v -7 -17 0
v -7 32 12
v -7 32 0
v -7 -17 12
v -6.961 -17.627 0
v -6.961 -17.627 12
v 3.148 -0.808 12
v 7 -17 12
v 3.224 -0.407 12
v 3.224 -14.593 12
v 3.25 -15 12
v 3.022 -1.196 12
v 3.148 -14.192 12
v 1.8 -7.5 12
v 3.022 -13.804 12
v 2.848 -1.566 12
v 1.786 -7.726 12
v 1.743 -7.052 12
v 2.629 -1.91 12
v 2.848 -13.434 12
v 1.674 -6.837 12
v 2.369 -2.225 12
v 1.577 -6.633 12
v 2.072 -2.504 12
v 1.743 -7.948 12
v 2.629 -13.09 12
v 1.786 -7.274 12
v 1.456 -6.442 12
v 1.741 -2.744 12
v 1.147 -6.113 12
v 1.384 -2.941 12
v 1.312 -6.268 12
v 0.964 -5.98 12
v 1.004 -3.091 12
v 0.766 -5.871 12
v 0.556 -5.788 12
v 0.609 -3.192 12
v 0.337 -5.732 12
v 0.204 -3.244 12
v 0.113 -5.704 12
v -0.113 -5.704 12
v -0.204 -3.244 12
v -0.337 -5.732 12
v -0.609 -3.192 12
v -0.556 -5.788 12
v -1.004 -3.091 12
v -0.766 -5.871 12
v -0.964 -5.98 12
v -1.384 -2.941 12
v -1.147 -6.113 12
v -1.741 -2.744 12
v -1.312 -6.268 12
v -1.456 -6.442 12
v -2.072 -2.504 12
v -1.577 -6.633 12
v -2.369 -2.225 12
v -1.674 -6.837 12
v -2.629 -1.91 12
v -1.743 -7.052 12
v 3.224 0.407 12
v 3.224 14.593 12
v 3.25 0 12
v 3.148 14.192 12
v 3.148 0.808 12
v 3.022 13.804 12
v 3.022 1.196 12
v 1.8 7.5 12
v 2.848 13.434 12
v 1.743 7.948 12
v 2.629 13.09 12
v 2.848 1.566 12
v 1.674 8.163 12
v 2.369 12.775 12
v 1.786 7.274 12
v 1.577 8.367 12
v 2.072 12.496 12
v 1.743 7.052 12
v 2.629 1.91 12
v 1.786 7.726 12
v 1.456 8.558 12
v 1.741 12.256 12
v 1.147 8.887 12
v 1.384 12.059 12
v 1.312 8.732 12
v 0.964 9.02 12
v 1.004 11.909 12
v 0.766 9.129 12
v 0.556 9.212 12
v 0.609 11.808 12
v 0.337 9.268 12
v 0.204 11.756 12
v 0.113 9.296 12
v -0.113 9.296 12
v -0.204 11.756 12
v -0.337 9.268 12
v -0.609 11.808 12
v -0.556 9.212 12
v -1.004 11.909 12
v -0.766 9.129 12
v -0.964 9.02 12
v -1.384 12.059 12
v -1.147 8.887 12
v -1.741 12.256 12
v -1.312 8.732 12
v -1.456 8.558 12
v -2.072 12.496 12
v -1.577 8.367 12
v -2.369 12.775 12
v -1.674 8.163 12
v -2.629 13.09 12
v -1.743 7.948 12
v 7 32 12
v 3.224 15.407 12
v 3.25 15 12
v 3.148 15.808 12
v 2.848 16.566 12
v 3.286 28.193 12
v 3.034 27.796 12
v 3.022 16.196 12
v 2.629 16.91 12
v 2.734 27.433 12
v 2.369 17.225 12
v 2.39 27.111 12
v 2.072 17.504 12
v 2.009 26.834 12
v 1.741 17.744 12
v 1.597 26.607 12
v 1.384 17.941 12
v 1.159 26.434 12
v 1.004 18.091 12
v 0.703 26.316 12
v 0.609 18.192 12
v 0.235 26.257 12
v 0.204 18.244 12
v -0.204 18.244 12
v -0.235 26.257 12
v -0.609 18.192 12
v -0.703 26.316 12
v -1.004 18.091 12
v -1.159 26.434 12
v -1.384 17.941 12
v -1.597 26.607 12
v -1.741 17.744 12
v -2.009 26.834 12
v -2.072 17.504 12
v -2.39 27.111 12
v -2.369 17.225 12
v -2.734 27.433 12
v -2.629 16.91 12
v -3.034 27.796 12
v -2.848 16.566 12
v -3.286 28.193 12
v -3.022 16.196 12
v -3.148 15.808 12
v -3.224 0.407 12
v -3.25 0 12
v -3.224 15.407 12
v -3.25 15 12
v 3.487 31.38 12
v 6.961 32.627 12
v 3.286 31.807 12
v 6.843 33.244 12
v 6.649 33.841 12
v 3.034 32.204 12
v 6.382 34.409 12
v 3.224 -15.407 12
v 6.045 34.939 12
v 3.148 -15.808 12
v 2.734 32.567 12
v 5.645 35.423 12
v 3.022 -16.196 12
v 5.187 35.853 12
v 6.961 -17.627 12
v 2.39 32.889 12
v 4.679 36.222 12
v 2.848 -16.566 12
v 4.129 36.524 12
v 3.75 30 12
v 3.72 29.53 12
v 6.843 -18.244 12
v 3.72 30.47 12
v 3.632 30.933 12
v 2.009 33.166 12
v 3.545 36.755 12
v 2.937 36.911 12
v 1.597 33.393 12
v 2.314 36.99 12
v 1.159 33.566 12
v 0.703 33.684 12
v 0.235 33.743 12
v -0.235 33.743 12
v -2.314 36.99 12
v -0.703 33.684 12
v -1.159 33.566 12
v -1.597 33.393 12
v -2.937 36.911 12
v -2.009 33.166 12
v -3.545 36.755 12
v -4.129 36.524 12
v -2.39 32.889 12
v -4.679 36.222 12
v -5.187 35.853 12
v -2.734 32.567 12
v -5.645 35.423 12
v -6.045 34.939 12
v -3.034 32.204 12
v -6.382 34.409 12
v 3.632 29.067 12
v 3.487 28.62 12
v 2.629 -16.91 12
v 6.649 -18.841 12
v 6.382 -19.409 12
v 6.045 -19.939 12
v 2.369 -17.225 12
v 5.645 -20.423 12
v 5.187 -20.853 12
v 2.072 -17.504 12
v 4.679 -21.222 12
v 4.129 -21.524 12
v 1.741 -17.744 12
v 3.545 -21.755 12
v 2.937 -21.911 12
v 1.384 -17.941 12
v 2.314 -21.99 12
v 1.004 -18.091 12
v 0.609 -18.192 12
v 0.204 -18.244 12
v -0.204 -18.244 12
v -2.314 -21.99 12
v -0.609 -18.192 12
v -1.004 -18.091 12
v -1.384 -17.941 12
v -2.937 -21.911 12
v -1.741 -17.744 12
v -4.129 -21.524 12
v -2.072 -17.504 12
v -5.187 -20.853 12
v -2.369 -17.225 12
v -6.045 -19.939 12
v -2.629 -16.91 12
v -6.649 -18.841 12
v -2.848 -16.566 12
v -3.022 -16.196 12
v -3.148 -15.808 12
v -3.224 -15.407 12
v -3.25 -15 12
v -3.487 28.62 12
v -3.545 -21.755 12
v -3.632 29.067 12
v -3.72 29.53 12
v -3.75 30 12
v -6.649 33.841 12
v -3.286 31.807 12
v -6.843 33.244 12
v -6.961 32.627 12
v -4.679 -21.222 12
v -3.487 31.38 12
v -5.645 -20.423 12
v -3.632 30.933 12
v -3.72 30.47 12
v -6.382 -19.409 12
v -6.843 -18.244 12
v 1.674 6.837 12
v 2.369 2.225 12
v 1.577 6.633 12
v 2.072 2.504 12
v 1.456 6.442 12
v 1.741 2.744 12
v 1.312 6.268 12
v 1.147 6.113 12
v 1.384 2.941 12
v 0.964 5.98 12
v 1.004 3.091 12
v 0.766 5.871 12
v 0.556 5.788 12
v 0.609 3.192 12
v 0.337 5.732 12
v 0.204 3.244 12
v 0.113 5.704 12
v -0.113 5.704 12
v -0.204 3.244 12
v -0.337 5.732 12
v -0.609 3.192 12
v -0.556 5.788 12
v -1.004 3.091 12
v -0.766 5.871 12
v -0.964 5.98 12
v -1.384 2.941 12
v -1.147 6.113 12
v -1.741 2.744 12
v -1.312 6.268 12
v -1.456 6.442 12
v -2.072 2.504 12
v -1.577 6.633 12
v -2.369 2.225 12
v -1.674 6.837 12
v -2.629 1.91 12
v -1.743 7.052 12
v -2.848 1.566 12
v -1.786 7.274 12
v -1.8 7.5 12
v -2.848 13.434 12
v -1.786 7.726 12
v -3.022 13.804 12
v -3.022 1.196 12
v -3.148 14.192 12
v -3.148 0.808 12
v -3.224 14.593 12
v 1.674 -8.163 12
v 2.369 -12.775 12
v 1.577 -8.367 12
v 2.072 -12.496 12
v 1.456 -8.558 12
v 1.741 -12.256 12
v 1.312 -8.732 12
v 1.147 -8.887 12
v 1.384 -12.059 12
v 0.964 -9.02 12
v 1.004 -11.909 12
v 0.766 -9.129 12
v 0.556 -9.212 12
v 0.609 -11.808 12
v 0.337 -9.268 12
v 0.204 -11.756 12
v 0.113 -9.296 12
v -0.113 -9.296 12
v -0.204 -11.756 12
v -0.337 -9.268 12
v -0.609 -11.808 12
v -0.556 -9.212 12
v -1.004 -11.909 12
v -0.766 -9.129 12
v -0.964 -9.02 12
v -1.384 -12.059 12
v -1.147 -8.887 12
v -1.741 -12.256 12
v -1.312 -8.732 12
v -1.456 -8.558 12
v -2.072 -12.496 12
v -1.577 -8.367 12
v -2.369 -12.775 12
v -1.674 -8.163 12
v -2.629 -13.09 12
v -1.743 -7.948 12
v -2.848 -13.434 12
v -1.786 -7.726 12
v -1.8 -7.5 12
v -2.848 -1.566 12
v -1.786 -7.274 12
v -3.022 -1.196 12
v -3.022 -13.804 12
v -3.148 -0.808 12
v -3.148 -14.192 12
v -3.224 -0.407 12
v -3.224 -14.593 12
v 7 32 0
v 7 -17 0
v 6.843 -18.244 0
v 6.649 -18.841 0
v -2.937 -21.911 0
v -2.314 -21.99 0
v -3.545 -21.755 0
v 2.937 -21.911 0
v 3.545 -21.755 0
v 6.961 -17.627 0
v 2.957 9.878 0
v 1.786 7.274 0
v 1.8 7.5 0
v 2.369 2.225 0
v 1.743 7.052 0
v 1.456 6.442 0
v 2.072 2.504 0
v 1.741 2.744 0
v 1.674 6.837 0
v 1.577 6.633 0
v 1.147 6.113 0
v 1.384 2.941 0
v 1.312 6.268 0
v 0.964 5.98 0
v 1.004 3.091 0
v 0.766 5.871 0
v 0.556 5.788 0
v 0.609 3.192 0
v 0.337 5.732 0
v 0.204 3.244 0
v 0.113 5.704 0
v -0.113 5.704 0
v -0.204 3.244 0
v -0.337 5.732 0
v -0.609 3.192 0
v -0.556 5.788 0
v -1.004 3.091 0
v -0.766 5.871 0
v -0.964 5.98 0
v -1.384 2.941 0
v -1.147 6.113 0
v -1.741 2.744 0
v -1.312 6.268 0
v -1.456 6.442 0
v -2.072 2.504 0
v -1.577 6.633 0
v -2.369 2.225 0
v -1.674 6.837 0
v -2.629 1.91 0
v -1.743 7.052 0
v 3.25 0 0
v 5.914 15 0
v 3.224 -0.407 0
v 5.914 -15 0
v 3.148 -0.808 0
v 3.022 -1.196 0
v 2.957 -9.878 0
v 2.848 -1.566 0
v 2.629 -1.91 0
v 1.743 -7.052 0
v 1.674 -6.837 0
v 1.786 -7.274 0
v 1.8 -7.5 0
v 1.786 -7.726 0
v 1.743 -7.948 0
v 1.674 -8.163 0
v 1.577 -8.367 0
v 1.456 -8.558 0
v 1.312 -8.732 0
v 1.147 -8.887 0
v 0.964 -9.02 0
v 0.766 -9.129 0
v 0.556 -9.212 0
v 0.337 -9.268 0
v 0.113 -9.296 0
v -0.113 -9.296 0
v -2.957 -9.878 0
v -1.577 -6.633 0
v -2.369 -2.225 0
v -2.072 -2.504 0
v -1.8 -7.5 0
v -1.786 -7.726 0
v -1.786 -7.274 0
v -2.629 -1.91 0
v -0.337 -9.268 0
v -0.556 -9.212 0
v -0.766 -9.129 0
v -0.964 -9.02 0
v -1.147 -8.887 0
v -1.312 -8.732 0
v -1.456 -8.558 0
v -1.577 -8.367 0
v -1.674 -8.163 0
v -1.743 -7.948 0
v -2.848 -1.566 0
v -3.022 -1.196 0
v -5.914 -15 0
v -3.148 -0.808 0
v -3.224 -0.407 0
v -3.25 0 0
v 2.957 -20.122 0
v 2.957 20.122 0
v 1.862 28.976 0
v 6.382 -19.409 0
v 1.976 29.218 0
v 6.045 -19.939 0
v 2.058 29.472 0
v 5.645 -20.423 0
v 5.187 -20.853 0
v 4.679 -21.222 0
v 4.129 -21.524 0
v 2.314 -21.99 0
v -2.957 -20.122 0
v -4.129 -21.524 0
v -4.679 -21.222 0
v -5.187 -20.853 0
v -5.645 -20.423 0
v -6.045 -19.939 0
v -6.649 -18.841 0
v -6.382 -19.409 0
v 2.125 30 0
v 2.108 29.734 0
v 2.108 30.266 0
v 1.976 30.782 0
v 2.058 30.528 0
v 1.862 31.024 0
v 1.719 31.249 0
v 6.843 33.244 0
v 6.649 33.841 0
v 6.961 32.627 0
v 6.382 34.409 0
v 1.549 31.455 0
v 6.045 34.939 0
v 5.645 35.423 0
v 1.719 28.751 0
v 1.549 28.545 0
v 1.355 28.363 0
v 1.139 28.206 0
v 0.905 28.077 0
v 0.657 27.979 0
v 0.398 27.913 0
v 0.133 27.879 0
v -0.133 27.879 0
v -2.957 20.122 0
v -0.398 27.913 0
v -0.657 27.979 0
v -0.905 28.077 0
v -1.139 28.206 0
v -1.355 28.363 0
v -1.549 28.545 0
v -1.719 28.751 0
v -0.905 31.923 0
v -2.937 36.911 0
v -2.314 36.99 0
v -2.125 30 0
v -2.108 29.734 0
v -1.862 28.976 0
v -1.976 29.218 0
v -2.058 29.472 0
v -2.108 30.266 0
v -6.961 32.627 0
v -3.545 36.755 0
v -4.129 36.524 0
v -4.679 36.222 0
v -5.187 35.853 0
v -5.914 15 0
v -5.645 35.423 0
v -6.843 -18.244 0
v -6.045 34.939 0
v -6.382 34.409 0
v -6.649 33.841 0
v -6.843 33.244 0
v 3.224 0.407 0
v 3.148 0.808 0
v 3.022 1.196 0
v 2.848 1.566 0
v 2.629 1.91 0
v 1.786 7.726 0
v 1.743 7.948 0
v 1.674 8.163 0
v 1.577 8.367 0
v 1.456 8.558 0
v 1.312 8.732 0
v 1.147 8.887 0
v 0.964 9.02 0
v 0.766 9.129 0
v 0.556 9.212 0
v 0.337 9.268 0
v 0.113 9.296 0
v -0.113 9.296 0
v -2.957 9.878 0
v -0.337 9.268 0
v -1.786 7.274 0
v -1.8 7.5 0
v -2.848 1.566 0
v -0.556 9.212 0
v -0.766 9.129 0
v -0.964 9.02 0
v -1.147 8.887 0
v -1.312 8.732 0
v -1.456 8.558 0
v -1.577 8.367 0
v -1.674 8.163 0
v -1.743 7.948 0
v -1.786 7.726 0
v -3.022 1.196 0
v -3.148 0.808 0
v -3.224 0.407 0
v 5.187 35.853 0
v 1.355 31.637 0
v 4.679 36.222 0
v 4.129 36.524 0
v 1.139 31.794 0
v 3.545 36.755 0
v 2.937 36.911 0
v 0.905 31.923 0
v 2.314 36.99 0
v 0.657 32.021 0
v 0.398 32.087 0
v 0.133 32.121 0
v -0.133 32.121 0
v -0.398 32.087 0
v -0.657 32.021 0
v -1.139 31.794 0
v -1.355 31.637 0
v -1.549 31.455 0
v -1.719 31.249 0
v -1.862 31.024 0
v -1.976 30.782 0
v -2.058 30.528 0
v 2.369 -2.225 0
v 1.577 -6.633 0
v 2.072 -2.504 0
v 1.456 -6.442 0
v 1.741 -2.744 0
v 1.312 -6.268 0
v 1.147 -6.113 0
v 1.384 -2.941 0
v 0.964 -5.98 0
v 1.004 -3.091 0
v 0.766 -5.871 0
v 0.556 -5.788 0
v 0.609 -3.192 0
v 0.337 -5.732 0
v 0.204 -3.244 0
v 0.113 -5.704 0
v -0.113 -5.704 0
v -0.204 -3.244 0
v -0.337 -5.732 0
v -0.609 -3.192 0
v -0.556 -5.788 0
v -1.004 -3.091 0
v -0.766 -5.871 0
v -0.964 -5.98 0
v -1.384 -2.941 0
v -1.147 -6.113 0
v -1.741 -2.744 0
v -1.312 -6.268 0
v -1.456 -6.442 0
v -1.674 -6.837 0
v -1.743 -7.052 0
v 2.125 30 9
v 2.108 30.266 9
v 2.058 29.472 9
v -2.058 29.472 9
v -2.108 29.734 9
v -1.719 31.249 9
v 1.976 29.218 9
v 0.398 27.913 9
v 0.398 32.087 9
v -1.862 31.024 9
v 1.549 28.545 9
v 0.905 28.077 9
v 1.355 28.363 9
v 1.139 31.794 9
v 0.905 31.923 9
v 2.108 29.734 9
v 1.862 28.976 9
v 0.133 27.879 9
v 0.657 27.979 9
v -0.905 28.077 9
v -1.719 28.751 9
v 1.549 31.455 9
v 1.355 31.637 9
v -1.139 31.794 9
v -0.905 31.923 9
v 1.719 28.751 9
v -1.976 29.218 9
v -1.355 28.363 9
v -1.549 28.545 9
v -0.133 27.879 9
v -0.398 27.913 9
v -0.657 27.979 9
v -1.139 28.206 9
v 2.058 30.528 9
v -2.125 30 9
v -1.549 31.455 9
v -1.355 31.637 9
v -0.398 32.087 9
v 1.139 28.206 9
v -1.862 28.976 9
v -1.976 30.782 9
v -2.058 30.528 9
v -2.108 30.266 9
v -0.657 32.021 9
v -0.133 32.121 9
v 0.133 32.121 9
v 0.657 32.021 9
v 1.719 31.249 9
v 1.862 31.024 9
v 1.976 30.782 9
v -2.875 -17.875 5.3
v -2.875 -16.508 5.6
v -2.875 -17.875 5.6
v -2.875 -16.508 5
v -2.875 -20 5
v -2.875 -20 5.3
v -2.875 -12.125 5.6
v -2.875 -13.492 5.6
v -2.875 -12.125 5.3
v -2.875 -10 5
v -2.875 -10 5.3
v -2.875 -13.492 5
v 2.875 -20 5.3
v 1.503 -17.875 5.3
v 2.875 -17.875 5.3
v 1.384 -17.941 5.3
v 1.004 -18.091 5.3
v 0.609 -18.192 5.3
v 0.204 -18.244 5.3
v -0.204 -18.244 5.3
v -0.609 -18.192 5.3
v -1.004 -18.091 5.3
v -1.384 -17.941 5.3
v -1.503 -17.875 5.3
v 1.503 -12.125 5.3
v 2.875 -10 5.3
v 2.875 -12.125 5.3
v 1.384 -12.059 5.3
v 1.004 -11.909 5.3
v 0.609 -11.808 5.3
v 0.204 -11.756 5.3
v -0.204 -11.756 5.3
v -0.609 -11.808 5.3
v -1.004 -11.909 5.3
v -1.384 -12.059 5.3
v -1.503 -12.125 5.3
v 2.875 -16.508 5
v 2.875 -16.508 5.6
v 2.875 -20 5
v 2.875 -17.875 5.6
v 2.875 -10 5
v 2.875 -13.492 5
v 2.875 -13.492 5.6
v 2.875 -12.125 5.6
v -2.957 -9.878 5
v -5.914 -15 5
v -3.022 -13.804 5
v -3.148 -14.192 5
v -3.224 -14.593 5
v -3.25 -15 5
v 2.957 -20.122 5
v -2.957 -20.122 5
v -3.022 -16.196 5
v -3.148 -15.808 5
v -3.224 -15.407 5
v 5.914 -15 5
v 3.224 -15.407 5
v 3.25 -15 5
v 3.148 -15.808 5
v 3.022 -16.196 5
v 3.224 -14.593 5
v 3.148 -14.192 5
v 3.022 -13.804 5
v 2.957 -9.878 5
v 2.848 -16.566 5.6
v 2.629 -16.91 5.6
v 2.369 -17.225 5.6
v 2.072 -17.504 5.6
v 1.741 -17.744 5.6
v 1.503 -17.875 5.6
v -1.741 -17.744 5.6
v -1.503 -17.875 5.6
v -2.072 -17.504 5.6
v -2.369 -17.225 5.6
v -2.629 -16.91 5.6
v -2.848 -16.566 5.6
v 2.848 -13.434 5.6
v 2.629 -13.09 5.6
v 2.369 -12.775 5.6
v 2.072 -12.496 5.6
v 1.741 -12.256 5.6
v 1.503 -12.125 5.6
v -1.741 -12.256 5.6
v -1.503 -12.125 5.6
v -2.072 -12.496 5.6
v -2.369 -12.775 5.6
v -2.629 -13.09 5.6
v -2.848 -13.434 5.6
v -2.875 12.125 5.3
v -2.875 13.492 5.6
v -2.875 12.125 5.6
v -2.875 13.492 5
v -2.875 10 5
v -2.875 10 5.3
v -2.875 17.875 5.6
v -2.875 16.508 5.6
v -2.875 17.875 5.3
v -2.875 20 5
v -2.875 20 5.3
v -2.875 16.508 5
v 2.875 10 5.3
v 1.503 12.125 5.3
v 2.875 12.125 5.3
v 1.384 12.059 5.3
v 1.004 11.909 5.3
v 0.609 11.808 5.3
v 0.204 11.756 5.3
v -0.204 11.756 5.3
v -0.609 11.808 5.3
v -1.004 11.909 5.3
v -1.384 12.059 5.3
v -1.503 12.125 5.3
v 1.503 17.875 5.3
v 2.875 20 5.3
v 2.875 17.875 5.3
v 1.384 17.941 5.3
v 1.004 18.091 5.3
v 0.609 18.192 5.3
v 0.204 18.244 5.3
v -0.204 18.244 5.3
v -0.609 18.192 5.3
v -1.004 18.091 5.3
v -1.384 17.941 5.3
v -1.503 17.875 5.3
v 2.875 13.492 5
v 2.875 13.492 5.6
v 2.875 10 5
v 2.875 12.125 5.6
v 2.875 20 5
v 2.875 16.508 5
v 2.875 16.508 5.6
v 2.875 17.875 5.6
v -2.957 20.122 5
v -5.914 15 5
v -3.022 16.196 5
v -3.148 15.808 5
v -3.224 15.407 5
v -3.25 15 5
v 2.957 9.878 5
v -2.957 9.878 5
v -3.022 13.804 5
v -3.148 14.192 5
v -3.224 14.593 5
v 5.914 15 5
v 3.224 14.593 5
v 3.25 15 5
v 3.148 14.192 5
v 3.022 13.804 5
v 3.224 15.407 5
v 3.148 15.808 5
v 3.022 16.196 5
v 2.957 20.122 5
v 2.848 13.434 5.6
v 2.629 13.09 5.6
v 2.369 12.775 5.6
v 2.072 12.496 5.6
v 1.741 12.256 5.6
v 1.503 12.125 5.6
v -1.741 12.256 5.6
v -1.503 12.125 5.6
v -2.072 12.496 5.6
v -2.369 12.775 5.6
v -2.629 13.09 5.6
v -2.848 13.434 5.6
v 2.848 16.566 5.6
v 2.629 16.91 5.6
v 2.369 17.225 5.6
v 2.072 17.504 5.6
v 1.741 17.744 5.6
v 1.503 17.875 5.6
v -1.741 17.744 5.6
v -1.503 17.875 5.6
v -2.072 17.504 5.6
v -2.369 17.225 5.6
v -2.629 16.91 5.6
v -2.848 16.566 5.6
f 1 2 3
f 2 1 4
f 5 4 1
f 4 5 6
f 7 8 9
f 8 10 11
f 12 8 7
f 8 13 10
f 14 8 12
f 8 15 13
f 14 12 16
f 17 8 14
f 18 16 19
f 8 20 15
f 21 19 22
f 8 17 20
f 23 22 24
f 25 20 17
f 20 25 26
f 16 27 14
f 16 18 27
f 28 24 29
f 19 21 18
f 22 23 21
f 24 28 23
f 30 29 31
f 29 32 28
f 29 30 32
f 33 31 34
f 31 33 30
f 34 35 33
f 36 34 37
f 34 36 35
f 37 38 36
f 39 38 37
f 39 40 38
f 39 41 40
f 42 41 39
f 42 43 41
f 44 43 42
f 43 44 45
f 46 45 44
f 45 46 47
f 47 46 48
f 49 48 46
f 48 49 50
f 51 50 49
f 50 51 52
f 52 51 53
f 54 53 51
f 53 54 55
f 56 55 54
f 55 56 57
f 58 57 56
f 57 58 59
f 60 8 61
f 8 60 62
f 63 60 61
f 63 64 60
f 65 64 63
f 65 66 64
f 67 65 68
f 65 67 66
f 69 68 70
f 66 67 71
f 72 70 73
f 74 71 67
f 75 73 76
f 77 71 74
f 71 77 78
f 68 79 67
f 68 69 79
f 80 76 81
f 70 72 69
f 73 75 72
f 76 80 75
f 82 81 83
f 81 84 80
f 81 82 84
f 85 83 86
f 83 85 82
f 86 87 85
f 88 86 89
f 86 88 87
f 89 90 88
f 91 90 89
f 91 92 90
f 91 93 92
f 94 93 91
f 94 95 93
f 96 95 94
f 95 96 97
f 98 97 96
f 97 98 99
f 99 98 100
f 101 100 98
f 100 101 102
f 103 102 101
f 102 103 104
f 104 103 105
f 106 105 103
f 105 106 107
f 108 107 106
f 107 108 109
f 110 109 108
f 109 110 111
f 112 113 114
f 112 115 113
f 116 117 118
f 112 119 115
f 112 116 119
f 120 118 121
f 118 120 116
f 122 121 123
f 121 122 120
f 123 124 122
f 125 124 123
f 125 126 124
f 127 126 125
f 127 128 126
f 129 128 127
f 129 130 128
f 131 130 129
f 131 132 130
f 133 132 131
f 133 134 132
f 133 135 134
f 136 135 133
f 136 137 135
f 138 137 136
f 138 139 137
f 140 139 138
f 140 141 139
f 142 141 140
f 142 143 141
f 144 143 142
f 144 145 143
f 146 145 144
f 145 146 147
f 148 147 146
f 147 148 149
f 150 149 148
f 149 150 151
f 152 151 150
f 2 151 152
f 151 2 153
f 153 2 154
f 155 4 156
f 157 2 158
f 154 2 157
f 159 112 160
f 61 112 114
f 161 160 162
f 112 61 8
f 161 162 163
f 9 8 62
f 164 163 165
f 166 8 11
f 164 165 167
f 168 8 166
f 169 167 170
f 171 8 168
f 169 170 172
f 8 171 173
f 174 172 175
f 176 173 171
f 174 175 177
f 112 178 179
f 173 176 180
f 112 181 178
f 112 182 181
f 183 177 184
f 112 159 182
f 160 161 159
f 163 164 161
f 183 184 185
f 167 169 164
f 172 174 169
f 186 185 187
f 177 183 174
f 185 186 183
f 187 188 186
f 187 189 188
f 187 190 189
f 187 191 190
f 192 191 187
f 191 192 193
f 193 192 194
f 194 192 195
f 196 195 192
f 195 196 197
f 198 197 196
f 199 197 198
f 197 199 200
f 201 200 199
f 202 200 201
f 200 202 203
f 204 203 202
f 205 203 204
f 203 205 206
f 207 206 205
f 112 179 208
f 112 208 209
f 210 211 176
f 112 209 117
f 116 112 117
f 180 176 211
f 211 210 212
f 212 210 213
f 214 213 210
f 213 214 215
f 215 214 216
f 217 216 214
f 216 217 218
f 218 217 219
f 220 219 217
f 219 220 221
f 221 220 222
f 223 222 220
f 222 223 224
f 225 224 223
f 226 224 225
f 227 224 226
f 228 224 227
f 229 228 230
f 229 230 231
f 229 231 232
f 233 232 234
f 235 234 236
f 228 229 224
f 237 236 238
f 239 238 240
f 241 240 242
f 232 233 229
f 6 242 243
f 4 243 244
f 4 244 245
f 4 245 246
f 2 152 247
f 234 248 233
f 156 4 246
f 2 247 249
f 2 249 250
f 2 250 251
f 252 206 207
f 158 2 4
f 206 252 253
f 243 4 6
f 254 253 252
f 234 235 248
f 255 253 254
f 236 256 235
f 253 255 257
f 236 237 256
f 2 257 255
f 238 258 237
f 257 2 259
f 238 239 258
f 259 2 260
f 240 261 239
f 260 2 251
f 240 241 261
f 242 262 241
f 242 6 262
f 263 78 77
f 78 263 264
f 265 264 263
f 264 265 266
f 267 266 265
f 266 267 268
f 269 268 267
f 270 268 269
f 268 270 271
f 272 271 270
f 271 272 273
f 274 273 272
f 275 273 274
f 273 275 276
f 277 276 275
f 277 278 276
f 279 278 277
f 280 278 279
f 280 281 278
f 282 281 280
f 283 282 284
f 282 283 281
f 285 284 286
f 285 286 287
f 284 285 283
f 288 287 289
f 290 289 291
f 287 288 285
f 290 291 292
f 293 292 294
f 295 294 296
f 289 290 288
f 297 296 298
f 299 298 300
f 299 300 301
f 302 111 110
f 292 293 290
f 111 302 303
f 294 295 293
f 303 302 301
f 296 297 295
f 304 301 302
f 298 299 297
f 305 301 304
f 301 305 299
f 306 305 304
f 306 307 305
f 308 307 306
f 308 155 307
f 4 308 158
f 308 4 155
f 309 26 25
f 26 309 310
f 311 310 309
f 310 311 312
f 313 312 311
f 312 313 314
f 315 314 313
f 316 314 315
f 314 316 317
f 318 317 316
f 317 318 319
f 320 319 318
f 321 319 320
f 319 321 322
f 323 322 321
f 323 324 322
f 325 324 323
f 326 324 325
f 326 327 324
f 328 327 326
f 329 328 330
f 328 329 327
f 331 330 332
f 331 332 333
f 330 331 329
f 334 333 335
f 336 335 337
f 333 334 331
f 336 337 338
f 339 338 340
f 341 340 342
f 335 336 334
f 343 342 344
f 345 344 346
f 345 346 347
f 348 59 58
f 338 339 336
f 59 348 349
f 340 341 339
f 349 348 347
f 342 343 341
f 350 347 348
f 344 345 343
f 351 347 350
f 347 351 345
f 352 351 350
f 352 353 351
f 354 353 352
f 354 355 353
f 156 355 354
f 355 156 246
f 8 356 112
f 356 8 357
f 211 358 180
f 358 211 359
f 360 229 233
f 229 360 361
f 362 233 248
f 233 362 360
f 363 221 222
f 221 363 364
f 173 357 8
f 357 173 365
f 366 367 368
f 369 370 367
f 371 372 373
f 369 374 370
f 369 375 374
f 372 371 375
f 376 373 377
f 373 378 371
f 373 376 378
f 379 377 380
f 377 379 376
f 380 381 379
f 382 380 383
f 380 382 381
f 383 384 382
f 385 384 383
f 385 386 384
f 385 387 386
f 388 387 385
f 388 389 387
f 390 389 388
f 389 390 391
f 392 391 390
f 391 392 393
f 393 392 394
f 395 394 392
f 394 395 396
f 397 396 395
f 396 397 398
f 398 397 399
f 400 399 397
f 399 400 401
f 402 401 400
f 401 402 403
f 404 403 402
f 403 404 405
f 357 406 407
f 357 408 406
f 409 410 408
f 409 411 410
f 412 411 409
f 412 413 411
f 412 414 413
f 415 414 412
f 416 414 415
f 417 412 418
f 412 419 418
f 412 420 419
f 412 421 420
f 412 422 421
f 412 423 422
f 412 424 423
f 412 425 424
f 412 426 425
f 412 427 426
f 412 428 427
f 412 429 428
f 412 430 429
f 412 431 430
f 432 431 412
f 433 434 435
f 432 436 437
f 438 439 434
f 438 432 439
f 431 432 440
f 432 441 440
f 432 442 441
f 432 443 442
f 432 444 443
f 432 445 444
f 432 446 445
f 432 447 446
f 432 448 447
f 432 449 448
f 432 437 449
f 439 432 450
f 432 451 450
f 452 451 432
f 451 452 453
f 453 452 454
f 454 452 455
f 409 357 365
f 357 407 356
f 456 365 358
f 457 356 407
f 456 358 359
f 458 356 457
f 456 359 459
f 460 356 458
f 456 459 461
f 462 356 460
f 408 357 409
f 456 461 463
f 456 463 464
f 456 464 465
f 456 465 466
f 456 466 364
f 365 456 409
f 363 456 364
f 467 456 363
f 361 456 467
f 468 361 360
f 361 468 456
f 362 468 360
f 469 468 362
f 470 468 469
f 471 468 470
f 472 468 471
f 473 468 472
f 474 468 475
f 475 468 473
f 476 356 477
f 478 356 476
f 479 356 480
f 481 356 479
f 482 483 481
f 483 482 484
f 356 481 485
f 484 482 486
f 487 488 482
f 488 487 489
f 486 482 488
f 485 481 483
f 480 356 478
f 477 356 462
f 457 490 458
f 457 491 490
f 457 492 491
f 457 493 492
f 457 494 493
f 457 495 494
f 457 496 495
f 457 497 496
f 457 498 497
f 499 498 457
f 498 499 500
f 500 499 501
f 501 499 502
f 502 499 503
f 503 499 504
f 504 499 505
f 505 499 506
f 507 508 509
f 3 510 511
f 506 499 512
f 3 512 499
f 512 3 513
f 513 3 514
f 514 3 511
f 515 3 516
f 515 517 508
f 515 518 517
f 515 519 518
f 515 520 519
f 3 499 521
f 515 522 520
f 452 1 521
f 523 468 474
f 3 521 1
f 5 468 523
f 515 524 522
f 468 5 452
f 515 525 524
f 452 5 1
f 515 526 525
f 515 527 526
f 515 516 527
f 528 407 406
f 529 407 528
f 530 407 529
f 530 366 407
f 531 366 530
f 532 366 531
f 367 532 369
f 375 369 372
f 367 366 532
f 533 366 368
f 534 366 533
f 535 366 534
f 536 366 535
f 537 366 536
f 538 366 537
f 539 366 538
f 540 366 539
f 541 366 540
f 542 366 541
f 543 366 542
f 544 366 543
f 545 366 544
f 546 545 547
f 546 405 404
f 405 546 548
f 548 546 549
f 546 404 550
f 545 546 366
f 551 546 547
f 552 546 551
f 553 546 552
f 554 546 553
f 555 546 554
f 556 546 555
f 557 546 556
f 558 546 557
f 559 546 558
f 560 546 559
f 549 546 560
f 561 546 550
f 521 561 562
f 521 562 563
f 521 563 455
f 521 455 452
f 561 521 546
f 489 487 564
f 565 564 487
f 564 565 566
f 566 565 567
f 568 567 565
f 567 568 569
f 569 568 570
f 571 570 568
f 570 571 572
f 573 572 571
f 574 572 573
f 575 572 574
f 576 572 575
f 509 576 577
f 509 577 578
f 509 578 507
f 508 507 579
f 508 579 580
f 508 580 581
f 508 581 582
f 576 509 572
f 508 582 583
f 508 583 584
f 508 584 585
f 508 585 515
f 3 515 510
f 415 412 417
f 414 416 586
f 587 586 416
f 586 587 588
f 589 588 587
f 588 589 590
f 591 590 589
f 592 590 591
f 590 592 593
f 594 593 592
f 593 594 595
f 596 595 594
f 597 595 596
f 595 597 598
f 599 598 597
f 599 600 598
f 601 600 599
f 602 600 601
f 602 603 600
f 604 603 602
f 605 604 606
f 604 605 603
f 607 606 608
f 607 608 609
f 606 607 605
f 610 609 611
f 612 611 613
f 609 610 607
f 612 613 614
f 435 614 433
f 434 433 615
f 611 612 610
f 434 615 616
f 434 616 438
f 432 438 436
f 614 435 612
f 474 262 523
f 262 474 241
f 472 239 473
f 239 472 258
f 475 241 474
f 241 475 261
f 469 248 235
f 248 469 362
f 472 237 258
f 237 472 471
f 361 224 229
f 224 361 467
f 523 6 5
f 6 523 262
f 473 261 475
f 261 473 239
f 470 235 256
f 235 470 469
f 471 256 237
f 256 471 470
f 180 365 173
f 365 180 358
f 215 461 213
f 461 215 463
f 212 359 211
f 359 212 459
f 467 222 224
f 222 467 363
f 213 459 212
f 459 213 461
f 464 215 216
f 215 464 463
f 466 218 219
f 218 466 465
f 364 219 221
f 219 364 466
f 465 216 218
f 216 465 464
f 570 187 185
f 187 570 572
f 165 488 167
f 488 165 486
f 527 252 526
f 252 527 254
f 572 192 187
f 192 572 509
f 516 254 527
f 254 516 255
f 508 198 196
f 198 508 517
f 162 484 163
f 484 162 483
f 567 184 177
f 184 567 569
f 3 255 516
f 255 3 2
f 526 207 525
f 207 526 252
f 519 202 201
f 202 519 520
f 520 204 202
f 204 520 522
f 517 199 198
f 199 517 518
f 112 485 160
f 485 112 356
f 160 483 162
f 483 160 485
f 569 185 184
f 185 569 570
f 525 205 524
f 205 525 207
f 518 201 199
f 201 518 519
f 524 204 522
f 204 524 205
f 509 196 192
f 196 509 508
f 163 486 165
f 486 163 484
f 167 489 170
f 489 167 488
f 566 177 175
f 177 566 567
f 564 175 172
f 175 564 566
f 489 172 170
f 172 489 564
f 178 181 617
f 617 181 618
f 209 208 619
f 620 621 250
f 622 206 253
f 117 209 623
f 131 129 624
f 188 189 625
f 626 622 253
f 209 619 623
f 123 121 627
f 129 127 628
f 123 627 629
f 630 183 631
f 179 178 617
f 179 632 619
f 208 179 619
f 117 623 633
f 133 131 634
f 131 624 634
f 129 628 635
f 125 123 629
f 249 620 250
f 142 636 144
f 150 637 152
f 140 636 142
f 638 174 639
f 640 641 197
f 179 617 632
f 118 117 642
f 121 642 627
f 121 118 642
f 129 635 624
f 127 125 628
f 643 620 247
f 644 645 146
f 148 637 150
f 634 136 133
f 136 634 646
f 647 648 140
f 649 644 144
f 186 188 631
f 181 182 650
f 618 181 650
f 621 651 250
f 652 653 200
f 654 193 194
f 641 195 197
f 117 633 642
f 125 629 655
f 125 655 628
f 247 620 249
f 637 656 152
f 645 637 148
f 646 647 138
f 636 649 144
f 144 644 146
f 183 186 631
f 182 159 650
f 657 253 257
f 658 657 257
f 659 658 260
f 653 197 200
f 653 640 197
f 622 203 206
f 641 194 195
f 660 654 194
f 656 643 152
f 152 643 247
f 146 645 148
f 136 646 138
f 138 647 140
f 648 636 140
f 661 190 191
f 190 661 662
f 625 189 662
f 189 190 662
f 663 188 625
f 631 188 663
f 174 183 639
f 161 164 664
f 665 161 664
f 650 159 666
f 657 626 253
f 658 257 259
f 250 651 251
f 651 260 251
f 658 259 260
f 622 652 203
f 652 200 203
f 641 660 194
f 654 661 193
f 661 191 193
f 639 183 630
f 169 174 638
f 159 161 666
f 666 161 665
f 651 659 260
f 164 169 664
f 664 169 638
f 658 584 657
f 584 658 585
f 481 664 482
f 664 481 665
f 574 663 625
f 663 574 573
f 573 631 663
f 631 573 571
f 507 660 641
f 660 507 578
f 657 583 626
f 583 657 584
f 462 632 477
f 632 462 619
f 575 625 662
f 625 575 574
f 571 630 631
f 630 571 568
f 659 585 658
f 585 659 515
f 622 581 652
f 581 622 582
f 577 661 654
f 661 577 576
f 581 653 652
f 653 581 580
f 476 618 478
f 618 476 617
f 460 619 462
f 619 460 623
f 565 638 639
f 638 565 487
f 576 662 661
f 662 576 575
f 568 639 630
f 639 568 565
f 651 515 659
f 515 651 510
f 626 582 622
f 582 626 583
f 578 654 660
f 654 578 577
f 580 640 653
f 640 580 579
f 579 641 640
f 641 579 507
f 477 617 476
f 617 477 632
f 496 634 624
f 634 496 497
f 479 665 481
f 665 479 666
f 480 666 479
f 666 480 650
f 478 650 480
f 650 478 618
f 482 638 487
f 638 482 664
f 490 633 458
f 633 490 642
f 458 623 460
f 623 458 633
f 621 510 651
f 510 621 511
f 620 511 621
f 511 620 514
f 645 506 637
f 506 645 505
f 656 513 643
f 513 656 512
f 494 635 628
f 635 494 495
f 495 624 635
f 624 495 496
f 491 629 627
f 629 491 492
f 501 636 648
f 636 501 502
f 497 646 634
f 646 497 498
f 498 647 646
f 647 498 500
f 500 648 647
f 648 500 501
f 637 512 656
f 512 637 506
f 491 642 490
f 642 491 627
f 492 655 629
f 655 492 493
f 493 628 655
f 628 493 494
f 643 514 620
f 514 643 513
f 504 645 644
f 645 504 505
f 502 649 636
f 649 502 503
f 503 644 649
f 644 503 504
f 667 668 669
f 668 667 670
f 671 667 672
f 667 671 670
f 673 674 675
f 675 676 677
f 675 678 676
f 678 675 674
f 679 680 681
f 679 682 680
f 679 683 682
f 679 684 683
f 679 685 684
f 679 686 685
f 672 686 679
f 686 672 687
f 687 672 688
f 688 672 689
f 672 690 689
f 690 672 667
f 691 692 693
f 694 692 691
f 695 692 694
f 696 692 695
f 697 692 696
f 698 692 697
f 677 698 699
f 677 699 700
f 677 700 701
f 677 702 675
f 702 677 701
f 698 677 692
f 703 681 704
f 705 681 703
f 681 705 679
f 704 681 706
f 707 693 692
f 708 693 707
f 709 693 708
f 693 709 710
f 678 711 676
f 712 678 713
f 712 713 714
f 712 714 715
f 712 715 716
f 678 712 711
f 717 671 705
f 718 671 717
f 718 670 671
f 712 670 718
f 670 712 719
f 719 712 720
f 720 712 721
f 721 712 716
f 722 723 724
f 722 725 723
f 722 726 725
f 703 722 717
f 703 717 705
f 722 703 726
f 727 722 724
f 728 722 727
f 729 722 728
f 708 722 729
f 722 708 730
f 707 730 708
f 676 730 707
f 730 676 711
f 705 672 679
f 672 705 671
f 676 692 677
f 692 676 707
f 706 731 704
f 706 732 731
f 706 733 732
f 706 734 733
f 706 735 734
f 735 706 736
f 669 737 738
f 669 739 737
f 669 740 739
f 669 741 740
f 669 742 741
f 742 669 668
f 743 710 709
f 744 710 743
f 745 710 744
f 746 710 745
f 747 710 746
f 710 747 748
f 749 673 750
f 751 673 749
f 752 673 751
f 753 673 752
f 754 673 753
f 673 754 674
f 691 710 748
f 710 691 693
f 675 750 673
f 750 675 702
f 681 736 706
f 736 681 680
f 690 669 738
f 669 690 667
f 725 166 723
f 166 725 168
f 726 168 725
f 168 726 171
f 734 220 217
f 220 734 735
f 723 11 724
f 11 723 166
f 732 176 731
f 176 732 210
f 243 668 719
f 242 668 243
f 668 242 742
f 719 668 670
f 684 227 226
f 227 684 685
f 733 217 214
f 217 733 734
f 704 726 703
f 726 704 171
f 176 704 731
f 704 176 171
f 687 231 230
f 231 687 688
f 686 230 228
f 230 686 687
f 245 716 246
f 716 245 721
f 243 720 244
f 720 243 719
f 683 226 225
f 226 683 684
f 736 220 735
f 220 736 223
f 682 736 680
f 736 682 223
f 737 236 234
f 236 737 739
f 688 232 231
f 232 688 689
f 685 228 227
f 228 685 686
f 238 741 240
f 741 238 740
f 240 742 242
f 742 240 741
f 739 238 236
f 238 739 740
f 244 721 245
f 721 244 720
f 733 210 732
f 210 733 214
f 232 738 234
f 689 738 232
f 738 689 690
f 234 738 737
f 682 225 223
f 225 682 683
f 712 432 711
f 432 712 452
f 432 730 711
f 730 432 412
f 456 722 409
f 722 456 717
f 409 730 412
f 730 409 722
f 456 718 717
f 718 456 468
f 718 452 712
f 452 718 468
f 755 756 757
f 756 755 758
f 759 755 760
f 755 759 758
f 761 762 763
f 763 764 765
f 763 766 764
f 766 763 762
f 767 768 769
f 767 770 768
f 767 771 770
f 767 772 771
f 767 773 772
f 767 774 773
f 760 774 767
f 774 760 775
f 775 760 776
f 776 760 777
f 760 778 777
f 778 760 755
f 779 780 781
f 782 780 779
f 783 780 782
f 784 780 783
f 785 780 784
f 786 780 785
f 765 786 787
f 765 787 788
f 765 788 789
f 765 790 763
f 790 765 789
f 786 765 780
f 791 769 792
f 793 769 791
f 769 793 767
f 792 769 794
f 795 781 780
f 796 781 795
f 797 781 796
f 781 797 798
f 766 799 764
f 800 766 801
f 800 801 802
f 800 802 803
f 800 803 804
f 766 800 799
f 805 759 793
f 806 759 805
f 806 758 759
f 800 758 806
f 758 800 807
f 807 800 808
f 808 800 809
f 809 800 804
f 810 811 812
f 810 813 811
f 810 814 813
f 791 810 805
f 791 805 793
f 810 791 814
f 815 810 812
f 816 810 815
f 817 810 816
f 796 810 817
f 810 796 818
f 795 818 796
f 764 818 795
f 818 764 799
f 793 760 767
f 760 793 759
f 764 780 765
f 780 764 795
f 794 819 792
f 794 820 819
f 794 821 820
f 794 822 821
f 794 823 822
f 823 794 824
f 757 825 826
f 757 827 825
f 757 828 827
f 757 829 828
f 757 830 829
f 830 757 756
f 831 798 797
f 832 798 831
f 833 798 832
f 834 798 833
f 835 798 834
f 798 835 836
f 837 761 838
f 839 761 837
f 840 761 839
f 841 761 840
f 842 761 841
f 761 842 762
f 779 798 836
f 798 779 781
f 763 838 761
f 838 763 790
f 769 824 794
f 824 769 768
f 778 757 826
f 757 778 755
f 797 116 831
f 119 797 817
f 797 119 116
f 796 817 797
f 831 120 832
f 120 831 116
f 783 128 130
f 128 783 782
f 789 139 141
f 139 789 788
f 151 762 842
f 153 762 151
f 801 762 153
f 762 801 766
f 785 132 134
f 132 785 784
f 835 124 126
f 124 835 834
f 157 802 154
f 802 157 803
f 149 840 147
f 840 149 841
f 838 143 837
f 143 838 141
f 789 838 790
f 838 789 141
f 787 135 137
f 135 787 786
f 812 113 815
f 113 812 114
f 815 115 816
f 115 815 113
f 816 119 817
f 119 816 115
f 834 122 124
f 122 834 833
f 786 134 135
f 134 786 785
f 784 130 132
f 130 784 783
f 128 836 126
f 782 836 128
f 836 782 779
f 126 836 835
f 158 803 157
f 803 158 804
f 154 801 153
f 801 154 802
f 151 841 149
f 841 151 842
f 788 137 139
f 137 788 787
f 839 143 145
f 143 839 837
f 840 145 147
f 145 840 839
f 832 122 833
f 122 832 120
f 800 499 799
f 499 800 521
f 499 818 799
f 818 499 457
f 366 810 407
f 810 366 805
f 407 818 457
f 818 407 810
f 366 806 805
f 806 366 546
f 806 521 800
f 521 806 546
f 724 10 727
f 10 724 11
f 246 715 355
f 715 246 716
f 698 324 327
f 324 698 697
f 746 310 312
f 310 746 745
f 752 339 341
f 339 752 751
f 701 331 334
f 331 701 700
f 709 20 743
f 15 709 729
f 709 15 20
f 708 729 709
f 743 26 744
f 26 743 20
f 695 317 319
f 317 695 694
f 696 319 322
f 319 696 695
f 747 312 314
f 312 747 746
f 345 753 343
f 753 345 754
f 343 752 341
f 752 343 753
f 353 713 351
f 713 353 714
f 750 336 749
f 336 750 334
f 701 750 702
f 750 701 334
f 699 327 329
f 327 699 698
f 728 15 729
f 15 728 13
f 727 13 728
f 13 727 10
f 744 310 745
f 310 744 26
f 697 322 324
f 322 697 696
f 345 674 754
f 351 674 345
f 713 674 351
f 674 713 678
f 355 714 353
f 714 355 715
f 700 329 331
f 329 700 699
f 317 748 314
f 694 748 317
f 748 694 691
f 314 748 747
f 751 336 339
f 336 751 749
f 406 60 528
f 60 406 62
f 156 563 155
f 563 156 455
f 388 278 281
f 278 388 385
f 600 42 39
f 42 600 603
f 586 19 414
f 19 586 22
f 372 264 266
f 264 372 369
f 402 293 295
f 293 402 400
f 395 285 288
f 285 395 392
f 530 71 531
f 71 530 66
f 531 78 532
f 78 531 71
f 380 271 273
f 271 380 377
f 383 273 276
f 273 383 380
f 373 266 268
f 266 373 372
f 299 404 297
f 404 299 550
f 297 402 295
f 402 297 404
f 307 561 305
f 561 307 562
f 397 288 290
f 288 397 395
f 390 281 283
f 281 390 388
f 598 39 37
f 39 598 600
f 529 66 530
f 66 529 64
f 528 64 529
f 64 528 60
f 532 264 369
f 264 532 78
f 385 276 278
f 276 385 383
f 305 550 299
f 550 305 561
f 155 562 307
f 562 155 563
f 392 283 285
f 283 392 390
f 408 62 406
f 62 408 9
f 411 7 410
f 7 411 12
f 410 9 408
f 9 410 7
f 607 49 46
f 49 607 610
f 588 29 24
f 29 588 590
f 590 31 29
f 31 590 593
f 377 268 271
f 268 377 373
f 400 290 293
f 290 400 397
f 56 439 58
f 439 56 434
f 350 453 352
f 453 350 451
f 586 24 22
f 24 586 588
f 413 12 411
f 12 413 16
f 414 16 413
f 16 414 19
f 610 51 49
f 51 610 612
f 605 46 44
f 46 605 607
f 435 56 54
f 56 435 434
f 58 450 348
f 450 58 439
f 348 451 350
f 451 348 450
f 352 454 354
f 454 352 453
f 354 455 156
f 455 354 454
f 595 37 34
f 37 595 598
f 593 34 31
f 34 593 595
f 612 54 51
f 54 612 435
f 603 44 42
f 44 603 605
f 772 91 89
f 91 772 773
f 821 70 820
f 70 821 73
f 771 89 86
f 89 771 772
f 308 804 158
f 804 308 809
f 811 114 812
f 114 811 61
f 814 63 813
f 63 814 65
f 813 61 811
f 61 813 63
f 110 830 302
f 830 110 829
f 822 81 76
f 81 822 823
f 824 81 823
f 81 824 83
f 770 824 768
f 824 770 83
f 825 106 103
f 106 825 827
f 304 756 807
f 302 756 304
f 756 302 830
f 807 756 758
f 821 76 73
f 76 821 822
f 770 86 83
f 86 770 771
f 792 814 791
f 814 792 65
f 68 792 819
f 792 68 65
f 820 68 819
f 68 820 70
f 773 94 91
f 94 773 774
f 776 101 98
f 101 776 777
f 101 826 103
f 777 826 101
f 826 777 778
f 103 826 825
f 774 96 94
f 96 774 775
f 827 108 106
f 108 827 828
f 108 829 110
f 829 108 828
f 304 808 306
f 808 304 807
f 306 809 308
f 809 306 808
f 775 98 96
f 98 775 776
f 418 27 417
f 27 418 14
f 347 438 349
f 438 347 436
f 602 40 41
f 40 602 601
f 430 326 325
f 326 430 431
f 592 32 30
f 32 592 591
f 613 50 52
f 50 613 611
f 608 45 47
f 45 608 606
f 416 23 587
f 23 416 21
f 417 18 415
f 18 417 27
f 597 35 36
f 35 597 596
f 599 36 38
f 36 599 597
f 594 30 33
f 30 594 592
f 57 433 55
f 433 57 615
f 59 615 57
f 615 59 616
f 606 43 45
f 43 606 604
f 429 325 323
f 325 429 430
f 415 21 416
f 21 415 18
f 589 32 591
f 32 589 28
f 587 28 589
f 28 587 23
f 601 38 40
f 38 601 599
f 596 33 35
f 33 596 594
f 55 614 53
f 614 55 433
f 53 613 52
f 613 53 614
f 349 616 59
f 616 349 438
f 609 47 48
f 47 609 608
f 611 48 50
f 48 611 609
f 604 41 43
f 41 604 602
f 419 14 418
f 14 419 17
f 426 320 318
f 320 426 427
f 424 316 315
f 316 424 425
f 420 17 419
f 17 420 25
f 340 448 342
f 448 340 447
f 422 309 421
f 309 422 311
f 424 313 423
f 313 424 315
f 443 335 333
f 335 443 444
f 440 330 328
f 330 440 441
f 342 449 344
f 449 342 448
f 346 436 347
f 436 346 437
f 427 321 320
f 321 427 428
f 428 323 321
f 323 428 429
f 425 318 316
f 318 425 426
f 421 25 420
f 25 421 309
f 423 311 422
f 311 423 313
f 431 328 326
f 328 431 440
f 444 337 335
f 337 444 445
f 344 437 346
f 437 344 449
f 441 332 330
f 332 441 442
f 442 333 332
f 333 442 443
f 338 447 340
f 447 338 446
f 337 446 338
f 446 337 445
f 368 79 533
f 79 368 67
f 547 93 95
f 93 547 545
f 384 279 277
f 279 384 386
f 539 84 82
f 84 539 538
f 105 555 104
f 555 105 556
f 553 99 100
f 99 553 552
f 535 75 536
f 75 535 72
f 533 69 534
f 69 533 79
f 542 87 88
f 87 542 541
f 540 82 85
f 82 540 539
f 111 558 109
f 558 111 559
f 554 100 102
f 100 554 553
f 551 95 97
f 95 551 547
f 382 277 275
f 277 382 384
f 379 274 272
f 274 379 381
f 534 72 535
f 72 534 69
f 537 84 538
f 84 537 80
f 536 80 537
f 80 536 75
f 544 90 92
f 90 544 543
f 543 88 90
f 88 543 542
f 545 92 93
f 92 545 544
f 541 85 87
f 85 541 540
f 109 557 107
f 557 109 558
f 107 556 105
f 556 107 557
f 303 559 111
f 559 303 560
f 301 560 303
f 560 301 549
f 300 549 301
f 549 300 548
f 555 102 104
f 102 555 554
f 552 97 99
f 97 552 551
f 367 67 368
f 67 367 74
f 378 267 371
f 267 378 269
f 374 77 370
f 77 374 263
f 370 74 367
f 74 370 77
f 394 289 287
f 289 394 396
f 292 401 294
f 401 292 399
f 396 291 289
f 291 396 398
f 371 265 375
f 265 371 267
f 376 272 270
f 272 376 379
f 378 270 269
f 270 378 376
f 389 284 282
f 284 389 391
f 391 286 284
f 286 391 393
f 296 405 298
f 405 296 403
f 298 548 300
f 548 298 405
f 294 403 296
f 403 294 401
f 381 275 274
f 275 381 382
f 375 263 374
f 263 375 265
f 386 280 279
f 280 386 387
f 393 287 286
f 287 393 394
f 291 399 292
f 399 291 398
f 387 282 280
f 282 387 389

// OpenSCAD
$fn = 50;


difference() {
	union() {
		hull() {
			translate(v = [-2.0000000000, 17.0000000000, 0]) {
				cylinder(h = 12, r = 5);
			}
			translate(v = [2.0000000000, 17.0000000000, 0]) {
				cylinder(h = 12, r = 5);
			}
			translate(v = [-2.0000000000, -17.0000000000, 0]) {
				cylinder(h = 12, r = 5);
			}
			translate(v = [2.0000000000, -17.0000000000, 0]) {
				cylinder(h = 12, r = 5);
			}
		}
		translate(v = [0.0000000000, 22.5000000000, 0]) {
			hull() {
				translate(v = [-2.0000000000, 9.5000000000, 0]) {
					cylinder(h = 12, r = 5);
				}
				translate(v = [2.0000000000, 9.5000000000, 0]) {
					cylinder(h = 12, r = 5);
				}
				translate(v = [-2.0000000000, -9.5000000000, 0]) {
					cylinder(h = 12, r = 5);
				}
				translate(v = [2.0000000000, -9.5000000000, 0]) {
					cylinder(h = 12, r = 5);
				}
			}
		}
		translate(v = [0.0000000000, 22.5000000000, 0]) {
			hull() {
				translate(v = [-2.0000000000, 9.5000000000, 0]) {
					cylinder(h = 12, r = 5);
				}
				translate(v = [2.0000000000, 9.5000000000, 0]) {
					cylinder(h = 12, r = 5);
				}
				translate(v = [-2.0000000000, -9.5000000000, 0]) {
					cylinder(h = 12, r = 5);
				}
				translate(v = [2.0000000000, -9.5000000000, 0]) {
					cylinder(h = 12, r = 5);
				}
			}
		}
	}
	union() {
		translate(v = [0.0000000000, 30.0000000000, 12]) {
			rotate(a = [0, 0, 0]) {
				difference() {
					union() {
						#translate(v = [0, 0, -12.0000000000]) {
							cylinder(h = 12, r = 2.0000000000);
						}
						#translate(v = [0, 0, -3]) {
							cylinder(h = 3, r1 = 2.1250000000, r2 = 3.7500000000);
						}
						#translate(v = [0, 0, -12.0000000000]) {
							cylinder(h = 12, r = 2.1250000000);
						}
						#translate(v = [0, 0, -12.0000000000]) {
							cylinder(h = 12, r = 2.0000000000);
						}
					}
					union();
				}
			}
		}
		translate(v = [0.0000000000, 30.0000000000, 12]) {
			rotate(a = [0, 0, 0]) {
				difference() {
					union() {
						#translate(v = [0, 0, -12.0000000000]) {
							cylinder(h = 12, r = 2.0000000000);
						}
						#translate(v = [0, 0, -3]) {
							cylinder(h = 3, r1 = 2.1250000000, r2 = 3.7500000000);
						}
						#translate(v = [0, 0, -12.0000000000]) {
							cylinder(h = 12, r = 2.1250000000);
						}
						#translate(v = [0, 0, -12.0000000000]) {
							cylinder(h = 12, r = 2.0000000000);
						}
					}
					union();
				}
			}
		}
		translate(v = [0.0000000000, -15.0000000000, 0]) {
			rotate(a = [0, 0, 0]) {
				difference() {
					union() {
						#translate(v = [-2.8750000000, -5.0000000000, -0.3000000000]) {
							cube(size = [5.7500000000, 10, 0.3000000000]);
						}
						#translate(v = [-2.8750000000, -2.8750000000, -0.6000000000]) {
							cube(size = [5.7500000000, 5.7500000000, 0.3000000000]);
						}
						#translate(v = [-2.8750000000, -5.0000000000, 5]) {
							cube(size = [5.7500000000, 10, 0.3000000000]);
						}
						#translate(v = [-2.8750000000, -2.8750000000, 5.3000000000]) {
							cube(size = [5.7500000000, 5.7500000000, 0.3000000000]);
						}
						#translate(v = [0, 0, -100.0000000000]) {
							cylinder(h = 200, r = 3.2500000000);
						}
						#linear_extrude(height = 5) {
							polygon(points = [[5.9142500000, 0.0000000000], [2.9571250000, 5.1218907443], [-2.9571250000, 5.1218907443], [-5.9142500000, 0.0000000000], [-2.9571250000, -5.1218907443], [2.9571250000, -5.1218907443]]);
						}
						#translate(v = [-2.8750000000, -5.0000000000, -0.3000000000]) {
							cube(size = [5.7500000000, 10, 0.3000000000]);
						}
						#translate(v = [-2.8750000000, -2.8750000000, -0.6000000000]) {
							cube(size = [5.7500000000, 5.7500000000, 0.3000000000]);
						}
						#translate(v = [-2.8750000000, -5.0000000000, 5]) {
							cube(size = [5.7500000000, 10, 0.3000000000]);
						}
						#translate(v = [-2.8750000000, -2.8750000000, 5.3000000000]) {
							cube(size = [5.7500000000, 5.7500000000, 0.3000000000]);
						}
						#translate(v = [0, 0, -100.0000000000]) {
							cylinder(h = 200, r = 3.2500000000);
						}
						#translate(v = [-2.8750000000, -5.0000000000, -0.3000000000]) {
							cube(size = [5.7500000000, 10, 0.3000000000]);
						}
						#translate(v = [-2.8750000000, -2.8750000000, -0.6000000000]) {
							cube(size = [5.7500000000, 5.7500000000, 0.3000000000]);
						}
						#translate(v = [-2.8750000000, -5.0000000000, 5]) {
							cube(size = [5.7500000000, 10, 0.3000000000]);
						}
						#translate(v = [-2.8750000000, -2.8750000000, 5.3000000000]) {
							cube(size = [5.7500000000, 5.7500000000, 0.3000000000]);
						}
						#translate(v = [0, 0, -100.0000000000]) {
							cylinder(h = 200, r = 3.2500000000);
						}
					}
					union();
				}
			}
		}
		translate(v = [0.0000000000, 15.0000000000, 0]) {
			rotate(a = [0, 0, 0]) {
				difference() {
					union() {
						#translate(v = [-2.8750000000, -5.0000000000, -0.3000000000]) {
							cube(size = [5.7500000000, 10, 0.3000000000]);
						}
						#translate(v = [-2.8750000000, -2.8750000000, -0.6000000000]) {
							cube(size = [5.7500000000, 5.7500000000, 0.3000000000]);
						}
						#translate(v = [-2.8750000000, -5.0000000000, 5]) {
							cube(size = [5.7500000000, 10, 0.3000000000]);
						}
						#translate(v = [-2.8750000000, -2.8750000000, 5.3000000000]) {
							cube(size = [5.7500000000, 5.7500000000, 0.3000000000]);
						}
						#translate(v = [0, 0, -100.0000000000]) {
							cylinder(h = 200, r = 3.2500000000);
						}
						#linear_extrude(height = 5) {
							polygon(points = [[5.9142500000, 0.0000000000], [2.9571250000, 5.1218907443], [-2.9571250000, 5.1218907443], [-5.9142500000, 0.0000000000], [-2.9571250000, -5.1218907443], [2.9571250000, -5.1218907443]]);
						}
						#translate(v = [-2.8750000000, -5.0000000000, -0.3000000000]) {
							cube(size = [5.7500000000, 10, 0.3000000000]);
						}
						#translate(v = [-2.8750000000, -2.8750000000, -0.6000000000]) {
							cube(size = [5.7500000000, 5.7500000000, 0.3000000000]);
						}
						#translate(v = [-2.8750000000, -5.0000000000, 5]) {
							cube(size = [5.7500000000, 10, 0.3000000000]);
						}
						#translate(v = [-2.8750000000, -2.8750000000, 5.3000000000]) {
							cube(size = [5.7500000000, 5.7500000000, 0.3000000000]);
						}
						#translate(v = [0, 0, -100.0000000000]) {
							cylinder(h = 200, r = 3.2500000000);
						}
						#translate(v = [-2.8750000000, -5.0000000000, -0.3000000000]) {
							cube(size = [5.7500000000, 10, 0.3000000000]);
						}
						#translate(v = [-2.8750000000, -2.8750000000, -0.6000000000]) {
							cube(size = [5.7500000000, 5.7500000000, 0.3000000000]);
						}
						#translate(v = [-2.8750000000, -5.0000000000, 5]) {
							cube(size = [5.7500000000, 10, 0.3000000000]);
						}
						#translate(v = [-2.8750000000, -2.8750000000, 5.3000000000]) {
							cube(size = [5.7500000000, 5.7500000000, 0.3000000000]);
						}
						#translate(v = [0, 0, -100.0000000000]) {
							cylinder(h = 200, r = 3.2500000000);
						}
					}
					union();
				}
			}
		}
		translate(v = [0.0000000000, -15.0000000000, 0]) {
			translate(v = [0, 0, -100]) {
				cylinder(h = 200, r = 3.2500000000);
			}
		}
		translate(v = [0, 0, -100]) {
			cylinder(h = 200, r = 3.2500000000);
		}
		translate(v = [0.0000000000, 15.0000000000, 0]) {
			translate(v = [0, 0, -100]) {
				cylinder(h = 200, r = 3.2500000000);
			}
		}
		translate(v = [0.0000000000, -15.0000000000, 0]) {
			translate(v = [0, 0, -100]) {
				cylinder(h = 200, r = 1.8000000000);
			}
		}
		translate(v = [0.0000000000, -7.5000000000, 0]) {
			translate(v = [0, 0, -100]) {
				cylinder(h = 200, r = 1.8000000000);
			}
		}
		translate(v = [0, 0, -100]) {
			cylinder(h = 200, r = 1.8000000000);
		}
		translate(v = [0.0000000000, 7.5000000000, 0]) {
			translate(v = [0, 0, -100]) {
				cylinder(h = 200, r = 1.8000000000);
			}
		}
		translate(v = [0.0000000000, 15.0000000000, 0]) {
			translate(v = [0, 0, -100]) {
				cylinder(h = 200, r = 1.8000000000);
			}
		}
	}
}
